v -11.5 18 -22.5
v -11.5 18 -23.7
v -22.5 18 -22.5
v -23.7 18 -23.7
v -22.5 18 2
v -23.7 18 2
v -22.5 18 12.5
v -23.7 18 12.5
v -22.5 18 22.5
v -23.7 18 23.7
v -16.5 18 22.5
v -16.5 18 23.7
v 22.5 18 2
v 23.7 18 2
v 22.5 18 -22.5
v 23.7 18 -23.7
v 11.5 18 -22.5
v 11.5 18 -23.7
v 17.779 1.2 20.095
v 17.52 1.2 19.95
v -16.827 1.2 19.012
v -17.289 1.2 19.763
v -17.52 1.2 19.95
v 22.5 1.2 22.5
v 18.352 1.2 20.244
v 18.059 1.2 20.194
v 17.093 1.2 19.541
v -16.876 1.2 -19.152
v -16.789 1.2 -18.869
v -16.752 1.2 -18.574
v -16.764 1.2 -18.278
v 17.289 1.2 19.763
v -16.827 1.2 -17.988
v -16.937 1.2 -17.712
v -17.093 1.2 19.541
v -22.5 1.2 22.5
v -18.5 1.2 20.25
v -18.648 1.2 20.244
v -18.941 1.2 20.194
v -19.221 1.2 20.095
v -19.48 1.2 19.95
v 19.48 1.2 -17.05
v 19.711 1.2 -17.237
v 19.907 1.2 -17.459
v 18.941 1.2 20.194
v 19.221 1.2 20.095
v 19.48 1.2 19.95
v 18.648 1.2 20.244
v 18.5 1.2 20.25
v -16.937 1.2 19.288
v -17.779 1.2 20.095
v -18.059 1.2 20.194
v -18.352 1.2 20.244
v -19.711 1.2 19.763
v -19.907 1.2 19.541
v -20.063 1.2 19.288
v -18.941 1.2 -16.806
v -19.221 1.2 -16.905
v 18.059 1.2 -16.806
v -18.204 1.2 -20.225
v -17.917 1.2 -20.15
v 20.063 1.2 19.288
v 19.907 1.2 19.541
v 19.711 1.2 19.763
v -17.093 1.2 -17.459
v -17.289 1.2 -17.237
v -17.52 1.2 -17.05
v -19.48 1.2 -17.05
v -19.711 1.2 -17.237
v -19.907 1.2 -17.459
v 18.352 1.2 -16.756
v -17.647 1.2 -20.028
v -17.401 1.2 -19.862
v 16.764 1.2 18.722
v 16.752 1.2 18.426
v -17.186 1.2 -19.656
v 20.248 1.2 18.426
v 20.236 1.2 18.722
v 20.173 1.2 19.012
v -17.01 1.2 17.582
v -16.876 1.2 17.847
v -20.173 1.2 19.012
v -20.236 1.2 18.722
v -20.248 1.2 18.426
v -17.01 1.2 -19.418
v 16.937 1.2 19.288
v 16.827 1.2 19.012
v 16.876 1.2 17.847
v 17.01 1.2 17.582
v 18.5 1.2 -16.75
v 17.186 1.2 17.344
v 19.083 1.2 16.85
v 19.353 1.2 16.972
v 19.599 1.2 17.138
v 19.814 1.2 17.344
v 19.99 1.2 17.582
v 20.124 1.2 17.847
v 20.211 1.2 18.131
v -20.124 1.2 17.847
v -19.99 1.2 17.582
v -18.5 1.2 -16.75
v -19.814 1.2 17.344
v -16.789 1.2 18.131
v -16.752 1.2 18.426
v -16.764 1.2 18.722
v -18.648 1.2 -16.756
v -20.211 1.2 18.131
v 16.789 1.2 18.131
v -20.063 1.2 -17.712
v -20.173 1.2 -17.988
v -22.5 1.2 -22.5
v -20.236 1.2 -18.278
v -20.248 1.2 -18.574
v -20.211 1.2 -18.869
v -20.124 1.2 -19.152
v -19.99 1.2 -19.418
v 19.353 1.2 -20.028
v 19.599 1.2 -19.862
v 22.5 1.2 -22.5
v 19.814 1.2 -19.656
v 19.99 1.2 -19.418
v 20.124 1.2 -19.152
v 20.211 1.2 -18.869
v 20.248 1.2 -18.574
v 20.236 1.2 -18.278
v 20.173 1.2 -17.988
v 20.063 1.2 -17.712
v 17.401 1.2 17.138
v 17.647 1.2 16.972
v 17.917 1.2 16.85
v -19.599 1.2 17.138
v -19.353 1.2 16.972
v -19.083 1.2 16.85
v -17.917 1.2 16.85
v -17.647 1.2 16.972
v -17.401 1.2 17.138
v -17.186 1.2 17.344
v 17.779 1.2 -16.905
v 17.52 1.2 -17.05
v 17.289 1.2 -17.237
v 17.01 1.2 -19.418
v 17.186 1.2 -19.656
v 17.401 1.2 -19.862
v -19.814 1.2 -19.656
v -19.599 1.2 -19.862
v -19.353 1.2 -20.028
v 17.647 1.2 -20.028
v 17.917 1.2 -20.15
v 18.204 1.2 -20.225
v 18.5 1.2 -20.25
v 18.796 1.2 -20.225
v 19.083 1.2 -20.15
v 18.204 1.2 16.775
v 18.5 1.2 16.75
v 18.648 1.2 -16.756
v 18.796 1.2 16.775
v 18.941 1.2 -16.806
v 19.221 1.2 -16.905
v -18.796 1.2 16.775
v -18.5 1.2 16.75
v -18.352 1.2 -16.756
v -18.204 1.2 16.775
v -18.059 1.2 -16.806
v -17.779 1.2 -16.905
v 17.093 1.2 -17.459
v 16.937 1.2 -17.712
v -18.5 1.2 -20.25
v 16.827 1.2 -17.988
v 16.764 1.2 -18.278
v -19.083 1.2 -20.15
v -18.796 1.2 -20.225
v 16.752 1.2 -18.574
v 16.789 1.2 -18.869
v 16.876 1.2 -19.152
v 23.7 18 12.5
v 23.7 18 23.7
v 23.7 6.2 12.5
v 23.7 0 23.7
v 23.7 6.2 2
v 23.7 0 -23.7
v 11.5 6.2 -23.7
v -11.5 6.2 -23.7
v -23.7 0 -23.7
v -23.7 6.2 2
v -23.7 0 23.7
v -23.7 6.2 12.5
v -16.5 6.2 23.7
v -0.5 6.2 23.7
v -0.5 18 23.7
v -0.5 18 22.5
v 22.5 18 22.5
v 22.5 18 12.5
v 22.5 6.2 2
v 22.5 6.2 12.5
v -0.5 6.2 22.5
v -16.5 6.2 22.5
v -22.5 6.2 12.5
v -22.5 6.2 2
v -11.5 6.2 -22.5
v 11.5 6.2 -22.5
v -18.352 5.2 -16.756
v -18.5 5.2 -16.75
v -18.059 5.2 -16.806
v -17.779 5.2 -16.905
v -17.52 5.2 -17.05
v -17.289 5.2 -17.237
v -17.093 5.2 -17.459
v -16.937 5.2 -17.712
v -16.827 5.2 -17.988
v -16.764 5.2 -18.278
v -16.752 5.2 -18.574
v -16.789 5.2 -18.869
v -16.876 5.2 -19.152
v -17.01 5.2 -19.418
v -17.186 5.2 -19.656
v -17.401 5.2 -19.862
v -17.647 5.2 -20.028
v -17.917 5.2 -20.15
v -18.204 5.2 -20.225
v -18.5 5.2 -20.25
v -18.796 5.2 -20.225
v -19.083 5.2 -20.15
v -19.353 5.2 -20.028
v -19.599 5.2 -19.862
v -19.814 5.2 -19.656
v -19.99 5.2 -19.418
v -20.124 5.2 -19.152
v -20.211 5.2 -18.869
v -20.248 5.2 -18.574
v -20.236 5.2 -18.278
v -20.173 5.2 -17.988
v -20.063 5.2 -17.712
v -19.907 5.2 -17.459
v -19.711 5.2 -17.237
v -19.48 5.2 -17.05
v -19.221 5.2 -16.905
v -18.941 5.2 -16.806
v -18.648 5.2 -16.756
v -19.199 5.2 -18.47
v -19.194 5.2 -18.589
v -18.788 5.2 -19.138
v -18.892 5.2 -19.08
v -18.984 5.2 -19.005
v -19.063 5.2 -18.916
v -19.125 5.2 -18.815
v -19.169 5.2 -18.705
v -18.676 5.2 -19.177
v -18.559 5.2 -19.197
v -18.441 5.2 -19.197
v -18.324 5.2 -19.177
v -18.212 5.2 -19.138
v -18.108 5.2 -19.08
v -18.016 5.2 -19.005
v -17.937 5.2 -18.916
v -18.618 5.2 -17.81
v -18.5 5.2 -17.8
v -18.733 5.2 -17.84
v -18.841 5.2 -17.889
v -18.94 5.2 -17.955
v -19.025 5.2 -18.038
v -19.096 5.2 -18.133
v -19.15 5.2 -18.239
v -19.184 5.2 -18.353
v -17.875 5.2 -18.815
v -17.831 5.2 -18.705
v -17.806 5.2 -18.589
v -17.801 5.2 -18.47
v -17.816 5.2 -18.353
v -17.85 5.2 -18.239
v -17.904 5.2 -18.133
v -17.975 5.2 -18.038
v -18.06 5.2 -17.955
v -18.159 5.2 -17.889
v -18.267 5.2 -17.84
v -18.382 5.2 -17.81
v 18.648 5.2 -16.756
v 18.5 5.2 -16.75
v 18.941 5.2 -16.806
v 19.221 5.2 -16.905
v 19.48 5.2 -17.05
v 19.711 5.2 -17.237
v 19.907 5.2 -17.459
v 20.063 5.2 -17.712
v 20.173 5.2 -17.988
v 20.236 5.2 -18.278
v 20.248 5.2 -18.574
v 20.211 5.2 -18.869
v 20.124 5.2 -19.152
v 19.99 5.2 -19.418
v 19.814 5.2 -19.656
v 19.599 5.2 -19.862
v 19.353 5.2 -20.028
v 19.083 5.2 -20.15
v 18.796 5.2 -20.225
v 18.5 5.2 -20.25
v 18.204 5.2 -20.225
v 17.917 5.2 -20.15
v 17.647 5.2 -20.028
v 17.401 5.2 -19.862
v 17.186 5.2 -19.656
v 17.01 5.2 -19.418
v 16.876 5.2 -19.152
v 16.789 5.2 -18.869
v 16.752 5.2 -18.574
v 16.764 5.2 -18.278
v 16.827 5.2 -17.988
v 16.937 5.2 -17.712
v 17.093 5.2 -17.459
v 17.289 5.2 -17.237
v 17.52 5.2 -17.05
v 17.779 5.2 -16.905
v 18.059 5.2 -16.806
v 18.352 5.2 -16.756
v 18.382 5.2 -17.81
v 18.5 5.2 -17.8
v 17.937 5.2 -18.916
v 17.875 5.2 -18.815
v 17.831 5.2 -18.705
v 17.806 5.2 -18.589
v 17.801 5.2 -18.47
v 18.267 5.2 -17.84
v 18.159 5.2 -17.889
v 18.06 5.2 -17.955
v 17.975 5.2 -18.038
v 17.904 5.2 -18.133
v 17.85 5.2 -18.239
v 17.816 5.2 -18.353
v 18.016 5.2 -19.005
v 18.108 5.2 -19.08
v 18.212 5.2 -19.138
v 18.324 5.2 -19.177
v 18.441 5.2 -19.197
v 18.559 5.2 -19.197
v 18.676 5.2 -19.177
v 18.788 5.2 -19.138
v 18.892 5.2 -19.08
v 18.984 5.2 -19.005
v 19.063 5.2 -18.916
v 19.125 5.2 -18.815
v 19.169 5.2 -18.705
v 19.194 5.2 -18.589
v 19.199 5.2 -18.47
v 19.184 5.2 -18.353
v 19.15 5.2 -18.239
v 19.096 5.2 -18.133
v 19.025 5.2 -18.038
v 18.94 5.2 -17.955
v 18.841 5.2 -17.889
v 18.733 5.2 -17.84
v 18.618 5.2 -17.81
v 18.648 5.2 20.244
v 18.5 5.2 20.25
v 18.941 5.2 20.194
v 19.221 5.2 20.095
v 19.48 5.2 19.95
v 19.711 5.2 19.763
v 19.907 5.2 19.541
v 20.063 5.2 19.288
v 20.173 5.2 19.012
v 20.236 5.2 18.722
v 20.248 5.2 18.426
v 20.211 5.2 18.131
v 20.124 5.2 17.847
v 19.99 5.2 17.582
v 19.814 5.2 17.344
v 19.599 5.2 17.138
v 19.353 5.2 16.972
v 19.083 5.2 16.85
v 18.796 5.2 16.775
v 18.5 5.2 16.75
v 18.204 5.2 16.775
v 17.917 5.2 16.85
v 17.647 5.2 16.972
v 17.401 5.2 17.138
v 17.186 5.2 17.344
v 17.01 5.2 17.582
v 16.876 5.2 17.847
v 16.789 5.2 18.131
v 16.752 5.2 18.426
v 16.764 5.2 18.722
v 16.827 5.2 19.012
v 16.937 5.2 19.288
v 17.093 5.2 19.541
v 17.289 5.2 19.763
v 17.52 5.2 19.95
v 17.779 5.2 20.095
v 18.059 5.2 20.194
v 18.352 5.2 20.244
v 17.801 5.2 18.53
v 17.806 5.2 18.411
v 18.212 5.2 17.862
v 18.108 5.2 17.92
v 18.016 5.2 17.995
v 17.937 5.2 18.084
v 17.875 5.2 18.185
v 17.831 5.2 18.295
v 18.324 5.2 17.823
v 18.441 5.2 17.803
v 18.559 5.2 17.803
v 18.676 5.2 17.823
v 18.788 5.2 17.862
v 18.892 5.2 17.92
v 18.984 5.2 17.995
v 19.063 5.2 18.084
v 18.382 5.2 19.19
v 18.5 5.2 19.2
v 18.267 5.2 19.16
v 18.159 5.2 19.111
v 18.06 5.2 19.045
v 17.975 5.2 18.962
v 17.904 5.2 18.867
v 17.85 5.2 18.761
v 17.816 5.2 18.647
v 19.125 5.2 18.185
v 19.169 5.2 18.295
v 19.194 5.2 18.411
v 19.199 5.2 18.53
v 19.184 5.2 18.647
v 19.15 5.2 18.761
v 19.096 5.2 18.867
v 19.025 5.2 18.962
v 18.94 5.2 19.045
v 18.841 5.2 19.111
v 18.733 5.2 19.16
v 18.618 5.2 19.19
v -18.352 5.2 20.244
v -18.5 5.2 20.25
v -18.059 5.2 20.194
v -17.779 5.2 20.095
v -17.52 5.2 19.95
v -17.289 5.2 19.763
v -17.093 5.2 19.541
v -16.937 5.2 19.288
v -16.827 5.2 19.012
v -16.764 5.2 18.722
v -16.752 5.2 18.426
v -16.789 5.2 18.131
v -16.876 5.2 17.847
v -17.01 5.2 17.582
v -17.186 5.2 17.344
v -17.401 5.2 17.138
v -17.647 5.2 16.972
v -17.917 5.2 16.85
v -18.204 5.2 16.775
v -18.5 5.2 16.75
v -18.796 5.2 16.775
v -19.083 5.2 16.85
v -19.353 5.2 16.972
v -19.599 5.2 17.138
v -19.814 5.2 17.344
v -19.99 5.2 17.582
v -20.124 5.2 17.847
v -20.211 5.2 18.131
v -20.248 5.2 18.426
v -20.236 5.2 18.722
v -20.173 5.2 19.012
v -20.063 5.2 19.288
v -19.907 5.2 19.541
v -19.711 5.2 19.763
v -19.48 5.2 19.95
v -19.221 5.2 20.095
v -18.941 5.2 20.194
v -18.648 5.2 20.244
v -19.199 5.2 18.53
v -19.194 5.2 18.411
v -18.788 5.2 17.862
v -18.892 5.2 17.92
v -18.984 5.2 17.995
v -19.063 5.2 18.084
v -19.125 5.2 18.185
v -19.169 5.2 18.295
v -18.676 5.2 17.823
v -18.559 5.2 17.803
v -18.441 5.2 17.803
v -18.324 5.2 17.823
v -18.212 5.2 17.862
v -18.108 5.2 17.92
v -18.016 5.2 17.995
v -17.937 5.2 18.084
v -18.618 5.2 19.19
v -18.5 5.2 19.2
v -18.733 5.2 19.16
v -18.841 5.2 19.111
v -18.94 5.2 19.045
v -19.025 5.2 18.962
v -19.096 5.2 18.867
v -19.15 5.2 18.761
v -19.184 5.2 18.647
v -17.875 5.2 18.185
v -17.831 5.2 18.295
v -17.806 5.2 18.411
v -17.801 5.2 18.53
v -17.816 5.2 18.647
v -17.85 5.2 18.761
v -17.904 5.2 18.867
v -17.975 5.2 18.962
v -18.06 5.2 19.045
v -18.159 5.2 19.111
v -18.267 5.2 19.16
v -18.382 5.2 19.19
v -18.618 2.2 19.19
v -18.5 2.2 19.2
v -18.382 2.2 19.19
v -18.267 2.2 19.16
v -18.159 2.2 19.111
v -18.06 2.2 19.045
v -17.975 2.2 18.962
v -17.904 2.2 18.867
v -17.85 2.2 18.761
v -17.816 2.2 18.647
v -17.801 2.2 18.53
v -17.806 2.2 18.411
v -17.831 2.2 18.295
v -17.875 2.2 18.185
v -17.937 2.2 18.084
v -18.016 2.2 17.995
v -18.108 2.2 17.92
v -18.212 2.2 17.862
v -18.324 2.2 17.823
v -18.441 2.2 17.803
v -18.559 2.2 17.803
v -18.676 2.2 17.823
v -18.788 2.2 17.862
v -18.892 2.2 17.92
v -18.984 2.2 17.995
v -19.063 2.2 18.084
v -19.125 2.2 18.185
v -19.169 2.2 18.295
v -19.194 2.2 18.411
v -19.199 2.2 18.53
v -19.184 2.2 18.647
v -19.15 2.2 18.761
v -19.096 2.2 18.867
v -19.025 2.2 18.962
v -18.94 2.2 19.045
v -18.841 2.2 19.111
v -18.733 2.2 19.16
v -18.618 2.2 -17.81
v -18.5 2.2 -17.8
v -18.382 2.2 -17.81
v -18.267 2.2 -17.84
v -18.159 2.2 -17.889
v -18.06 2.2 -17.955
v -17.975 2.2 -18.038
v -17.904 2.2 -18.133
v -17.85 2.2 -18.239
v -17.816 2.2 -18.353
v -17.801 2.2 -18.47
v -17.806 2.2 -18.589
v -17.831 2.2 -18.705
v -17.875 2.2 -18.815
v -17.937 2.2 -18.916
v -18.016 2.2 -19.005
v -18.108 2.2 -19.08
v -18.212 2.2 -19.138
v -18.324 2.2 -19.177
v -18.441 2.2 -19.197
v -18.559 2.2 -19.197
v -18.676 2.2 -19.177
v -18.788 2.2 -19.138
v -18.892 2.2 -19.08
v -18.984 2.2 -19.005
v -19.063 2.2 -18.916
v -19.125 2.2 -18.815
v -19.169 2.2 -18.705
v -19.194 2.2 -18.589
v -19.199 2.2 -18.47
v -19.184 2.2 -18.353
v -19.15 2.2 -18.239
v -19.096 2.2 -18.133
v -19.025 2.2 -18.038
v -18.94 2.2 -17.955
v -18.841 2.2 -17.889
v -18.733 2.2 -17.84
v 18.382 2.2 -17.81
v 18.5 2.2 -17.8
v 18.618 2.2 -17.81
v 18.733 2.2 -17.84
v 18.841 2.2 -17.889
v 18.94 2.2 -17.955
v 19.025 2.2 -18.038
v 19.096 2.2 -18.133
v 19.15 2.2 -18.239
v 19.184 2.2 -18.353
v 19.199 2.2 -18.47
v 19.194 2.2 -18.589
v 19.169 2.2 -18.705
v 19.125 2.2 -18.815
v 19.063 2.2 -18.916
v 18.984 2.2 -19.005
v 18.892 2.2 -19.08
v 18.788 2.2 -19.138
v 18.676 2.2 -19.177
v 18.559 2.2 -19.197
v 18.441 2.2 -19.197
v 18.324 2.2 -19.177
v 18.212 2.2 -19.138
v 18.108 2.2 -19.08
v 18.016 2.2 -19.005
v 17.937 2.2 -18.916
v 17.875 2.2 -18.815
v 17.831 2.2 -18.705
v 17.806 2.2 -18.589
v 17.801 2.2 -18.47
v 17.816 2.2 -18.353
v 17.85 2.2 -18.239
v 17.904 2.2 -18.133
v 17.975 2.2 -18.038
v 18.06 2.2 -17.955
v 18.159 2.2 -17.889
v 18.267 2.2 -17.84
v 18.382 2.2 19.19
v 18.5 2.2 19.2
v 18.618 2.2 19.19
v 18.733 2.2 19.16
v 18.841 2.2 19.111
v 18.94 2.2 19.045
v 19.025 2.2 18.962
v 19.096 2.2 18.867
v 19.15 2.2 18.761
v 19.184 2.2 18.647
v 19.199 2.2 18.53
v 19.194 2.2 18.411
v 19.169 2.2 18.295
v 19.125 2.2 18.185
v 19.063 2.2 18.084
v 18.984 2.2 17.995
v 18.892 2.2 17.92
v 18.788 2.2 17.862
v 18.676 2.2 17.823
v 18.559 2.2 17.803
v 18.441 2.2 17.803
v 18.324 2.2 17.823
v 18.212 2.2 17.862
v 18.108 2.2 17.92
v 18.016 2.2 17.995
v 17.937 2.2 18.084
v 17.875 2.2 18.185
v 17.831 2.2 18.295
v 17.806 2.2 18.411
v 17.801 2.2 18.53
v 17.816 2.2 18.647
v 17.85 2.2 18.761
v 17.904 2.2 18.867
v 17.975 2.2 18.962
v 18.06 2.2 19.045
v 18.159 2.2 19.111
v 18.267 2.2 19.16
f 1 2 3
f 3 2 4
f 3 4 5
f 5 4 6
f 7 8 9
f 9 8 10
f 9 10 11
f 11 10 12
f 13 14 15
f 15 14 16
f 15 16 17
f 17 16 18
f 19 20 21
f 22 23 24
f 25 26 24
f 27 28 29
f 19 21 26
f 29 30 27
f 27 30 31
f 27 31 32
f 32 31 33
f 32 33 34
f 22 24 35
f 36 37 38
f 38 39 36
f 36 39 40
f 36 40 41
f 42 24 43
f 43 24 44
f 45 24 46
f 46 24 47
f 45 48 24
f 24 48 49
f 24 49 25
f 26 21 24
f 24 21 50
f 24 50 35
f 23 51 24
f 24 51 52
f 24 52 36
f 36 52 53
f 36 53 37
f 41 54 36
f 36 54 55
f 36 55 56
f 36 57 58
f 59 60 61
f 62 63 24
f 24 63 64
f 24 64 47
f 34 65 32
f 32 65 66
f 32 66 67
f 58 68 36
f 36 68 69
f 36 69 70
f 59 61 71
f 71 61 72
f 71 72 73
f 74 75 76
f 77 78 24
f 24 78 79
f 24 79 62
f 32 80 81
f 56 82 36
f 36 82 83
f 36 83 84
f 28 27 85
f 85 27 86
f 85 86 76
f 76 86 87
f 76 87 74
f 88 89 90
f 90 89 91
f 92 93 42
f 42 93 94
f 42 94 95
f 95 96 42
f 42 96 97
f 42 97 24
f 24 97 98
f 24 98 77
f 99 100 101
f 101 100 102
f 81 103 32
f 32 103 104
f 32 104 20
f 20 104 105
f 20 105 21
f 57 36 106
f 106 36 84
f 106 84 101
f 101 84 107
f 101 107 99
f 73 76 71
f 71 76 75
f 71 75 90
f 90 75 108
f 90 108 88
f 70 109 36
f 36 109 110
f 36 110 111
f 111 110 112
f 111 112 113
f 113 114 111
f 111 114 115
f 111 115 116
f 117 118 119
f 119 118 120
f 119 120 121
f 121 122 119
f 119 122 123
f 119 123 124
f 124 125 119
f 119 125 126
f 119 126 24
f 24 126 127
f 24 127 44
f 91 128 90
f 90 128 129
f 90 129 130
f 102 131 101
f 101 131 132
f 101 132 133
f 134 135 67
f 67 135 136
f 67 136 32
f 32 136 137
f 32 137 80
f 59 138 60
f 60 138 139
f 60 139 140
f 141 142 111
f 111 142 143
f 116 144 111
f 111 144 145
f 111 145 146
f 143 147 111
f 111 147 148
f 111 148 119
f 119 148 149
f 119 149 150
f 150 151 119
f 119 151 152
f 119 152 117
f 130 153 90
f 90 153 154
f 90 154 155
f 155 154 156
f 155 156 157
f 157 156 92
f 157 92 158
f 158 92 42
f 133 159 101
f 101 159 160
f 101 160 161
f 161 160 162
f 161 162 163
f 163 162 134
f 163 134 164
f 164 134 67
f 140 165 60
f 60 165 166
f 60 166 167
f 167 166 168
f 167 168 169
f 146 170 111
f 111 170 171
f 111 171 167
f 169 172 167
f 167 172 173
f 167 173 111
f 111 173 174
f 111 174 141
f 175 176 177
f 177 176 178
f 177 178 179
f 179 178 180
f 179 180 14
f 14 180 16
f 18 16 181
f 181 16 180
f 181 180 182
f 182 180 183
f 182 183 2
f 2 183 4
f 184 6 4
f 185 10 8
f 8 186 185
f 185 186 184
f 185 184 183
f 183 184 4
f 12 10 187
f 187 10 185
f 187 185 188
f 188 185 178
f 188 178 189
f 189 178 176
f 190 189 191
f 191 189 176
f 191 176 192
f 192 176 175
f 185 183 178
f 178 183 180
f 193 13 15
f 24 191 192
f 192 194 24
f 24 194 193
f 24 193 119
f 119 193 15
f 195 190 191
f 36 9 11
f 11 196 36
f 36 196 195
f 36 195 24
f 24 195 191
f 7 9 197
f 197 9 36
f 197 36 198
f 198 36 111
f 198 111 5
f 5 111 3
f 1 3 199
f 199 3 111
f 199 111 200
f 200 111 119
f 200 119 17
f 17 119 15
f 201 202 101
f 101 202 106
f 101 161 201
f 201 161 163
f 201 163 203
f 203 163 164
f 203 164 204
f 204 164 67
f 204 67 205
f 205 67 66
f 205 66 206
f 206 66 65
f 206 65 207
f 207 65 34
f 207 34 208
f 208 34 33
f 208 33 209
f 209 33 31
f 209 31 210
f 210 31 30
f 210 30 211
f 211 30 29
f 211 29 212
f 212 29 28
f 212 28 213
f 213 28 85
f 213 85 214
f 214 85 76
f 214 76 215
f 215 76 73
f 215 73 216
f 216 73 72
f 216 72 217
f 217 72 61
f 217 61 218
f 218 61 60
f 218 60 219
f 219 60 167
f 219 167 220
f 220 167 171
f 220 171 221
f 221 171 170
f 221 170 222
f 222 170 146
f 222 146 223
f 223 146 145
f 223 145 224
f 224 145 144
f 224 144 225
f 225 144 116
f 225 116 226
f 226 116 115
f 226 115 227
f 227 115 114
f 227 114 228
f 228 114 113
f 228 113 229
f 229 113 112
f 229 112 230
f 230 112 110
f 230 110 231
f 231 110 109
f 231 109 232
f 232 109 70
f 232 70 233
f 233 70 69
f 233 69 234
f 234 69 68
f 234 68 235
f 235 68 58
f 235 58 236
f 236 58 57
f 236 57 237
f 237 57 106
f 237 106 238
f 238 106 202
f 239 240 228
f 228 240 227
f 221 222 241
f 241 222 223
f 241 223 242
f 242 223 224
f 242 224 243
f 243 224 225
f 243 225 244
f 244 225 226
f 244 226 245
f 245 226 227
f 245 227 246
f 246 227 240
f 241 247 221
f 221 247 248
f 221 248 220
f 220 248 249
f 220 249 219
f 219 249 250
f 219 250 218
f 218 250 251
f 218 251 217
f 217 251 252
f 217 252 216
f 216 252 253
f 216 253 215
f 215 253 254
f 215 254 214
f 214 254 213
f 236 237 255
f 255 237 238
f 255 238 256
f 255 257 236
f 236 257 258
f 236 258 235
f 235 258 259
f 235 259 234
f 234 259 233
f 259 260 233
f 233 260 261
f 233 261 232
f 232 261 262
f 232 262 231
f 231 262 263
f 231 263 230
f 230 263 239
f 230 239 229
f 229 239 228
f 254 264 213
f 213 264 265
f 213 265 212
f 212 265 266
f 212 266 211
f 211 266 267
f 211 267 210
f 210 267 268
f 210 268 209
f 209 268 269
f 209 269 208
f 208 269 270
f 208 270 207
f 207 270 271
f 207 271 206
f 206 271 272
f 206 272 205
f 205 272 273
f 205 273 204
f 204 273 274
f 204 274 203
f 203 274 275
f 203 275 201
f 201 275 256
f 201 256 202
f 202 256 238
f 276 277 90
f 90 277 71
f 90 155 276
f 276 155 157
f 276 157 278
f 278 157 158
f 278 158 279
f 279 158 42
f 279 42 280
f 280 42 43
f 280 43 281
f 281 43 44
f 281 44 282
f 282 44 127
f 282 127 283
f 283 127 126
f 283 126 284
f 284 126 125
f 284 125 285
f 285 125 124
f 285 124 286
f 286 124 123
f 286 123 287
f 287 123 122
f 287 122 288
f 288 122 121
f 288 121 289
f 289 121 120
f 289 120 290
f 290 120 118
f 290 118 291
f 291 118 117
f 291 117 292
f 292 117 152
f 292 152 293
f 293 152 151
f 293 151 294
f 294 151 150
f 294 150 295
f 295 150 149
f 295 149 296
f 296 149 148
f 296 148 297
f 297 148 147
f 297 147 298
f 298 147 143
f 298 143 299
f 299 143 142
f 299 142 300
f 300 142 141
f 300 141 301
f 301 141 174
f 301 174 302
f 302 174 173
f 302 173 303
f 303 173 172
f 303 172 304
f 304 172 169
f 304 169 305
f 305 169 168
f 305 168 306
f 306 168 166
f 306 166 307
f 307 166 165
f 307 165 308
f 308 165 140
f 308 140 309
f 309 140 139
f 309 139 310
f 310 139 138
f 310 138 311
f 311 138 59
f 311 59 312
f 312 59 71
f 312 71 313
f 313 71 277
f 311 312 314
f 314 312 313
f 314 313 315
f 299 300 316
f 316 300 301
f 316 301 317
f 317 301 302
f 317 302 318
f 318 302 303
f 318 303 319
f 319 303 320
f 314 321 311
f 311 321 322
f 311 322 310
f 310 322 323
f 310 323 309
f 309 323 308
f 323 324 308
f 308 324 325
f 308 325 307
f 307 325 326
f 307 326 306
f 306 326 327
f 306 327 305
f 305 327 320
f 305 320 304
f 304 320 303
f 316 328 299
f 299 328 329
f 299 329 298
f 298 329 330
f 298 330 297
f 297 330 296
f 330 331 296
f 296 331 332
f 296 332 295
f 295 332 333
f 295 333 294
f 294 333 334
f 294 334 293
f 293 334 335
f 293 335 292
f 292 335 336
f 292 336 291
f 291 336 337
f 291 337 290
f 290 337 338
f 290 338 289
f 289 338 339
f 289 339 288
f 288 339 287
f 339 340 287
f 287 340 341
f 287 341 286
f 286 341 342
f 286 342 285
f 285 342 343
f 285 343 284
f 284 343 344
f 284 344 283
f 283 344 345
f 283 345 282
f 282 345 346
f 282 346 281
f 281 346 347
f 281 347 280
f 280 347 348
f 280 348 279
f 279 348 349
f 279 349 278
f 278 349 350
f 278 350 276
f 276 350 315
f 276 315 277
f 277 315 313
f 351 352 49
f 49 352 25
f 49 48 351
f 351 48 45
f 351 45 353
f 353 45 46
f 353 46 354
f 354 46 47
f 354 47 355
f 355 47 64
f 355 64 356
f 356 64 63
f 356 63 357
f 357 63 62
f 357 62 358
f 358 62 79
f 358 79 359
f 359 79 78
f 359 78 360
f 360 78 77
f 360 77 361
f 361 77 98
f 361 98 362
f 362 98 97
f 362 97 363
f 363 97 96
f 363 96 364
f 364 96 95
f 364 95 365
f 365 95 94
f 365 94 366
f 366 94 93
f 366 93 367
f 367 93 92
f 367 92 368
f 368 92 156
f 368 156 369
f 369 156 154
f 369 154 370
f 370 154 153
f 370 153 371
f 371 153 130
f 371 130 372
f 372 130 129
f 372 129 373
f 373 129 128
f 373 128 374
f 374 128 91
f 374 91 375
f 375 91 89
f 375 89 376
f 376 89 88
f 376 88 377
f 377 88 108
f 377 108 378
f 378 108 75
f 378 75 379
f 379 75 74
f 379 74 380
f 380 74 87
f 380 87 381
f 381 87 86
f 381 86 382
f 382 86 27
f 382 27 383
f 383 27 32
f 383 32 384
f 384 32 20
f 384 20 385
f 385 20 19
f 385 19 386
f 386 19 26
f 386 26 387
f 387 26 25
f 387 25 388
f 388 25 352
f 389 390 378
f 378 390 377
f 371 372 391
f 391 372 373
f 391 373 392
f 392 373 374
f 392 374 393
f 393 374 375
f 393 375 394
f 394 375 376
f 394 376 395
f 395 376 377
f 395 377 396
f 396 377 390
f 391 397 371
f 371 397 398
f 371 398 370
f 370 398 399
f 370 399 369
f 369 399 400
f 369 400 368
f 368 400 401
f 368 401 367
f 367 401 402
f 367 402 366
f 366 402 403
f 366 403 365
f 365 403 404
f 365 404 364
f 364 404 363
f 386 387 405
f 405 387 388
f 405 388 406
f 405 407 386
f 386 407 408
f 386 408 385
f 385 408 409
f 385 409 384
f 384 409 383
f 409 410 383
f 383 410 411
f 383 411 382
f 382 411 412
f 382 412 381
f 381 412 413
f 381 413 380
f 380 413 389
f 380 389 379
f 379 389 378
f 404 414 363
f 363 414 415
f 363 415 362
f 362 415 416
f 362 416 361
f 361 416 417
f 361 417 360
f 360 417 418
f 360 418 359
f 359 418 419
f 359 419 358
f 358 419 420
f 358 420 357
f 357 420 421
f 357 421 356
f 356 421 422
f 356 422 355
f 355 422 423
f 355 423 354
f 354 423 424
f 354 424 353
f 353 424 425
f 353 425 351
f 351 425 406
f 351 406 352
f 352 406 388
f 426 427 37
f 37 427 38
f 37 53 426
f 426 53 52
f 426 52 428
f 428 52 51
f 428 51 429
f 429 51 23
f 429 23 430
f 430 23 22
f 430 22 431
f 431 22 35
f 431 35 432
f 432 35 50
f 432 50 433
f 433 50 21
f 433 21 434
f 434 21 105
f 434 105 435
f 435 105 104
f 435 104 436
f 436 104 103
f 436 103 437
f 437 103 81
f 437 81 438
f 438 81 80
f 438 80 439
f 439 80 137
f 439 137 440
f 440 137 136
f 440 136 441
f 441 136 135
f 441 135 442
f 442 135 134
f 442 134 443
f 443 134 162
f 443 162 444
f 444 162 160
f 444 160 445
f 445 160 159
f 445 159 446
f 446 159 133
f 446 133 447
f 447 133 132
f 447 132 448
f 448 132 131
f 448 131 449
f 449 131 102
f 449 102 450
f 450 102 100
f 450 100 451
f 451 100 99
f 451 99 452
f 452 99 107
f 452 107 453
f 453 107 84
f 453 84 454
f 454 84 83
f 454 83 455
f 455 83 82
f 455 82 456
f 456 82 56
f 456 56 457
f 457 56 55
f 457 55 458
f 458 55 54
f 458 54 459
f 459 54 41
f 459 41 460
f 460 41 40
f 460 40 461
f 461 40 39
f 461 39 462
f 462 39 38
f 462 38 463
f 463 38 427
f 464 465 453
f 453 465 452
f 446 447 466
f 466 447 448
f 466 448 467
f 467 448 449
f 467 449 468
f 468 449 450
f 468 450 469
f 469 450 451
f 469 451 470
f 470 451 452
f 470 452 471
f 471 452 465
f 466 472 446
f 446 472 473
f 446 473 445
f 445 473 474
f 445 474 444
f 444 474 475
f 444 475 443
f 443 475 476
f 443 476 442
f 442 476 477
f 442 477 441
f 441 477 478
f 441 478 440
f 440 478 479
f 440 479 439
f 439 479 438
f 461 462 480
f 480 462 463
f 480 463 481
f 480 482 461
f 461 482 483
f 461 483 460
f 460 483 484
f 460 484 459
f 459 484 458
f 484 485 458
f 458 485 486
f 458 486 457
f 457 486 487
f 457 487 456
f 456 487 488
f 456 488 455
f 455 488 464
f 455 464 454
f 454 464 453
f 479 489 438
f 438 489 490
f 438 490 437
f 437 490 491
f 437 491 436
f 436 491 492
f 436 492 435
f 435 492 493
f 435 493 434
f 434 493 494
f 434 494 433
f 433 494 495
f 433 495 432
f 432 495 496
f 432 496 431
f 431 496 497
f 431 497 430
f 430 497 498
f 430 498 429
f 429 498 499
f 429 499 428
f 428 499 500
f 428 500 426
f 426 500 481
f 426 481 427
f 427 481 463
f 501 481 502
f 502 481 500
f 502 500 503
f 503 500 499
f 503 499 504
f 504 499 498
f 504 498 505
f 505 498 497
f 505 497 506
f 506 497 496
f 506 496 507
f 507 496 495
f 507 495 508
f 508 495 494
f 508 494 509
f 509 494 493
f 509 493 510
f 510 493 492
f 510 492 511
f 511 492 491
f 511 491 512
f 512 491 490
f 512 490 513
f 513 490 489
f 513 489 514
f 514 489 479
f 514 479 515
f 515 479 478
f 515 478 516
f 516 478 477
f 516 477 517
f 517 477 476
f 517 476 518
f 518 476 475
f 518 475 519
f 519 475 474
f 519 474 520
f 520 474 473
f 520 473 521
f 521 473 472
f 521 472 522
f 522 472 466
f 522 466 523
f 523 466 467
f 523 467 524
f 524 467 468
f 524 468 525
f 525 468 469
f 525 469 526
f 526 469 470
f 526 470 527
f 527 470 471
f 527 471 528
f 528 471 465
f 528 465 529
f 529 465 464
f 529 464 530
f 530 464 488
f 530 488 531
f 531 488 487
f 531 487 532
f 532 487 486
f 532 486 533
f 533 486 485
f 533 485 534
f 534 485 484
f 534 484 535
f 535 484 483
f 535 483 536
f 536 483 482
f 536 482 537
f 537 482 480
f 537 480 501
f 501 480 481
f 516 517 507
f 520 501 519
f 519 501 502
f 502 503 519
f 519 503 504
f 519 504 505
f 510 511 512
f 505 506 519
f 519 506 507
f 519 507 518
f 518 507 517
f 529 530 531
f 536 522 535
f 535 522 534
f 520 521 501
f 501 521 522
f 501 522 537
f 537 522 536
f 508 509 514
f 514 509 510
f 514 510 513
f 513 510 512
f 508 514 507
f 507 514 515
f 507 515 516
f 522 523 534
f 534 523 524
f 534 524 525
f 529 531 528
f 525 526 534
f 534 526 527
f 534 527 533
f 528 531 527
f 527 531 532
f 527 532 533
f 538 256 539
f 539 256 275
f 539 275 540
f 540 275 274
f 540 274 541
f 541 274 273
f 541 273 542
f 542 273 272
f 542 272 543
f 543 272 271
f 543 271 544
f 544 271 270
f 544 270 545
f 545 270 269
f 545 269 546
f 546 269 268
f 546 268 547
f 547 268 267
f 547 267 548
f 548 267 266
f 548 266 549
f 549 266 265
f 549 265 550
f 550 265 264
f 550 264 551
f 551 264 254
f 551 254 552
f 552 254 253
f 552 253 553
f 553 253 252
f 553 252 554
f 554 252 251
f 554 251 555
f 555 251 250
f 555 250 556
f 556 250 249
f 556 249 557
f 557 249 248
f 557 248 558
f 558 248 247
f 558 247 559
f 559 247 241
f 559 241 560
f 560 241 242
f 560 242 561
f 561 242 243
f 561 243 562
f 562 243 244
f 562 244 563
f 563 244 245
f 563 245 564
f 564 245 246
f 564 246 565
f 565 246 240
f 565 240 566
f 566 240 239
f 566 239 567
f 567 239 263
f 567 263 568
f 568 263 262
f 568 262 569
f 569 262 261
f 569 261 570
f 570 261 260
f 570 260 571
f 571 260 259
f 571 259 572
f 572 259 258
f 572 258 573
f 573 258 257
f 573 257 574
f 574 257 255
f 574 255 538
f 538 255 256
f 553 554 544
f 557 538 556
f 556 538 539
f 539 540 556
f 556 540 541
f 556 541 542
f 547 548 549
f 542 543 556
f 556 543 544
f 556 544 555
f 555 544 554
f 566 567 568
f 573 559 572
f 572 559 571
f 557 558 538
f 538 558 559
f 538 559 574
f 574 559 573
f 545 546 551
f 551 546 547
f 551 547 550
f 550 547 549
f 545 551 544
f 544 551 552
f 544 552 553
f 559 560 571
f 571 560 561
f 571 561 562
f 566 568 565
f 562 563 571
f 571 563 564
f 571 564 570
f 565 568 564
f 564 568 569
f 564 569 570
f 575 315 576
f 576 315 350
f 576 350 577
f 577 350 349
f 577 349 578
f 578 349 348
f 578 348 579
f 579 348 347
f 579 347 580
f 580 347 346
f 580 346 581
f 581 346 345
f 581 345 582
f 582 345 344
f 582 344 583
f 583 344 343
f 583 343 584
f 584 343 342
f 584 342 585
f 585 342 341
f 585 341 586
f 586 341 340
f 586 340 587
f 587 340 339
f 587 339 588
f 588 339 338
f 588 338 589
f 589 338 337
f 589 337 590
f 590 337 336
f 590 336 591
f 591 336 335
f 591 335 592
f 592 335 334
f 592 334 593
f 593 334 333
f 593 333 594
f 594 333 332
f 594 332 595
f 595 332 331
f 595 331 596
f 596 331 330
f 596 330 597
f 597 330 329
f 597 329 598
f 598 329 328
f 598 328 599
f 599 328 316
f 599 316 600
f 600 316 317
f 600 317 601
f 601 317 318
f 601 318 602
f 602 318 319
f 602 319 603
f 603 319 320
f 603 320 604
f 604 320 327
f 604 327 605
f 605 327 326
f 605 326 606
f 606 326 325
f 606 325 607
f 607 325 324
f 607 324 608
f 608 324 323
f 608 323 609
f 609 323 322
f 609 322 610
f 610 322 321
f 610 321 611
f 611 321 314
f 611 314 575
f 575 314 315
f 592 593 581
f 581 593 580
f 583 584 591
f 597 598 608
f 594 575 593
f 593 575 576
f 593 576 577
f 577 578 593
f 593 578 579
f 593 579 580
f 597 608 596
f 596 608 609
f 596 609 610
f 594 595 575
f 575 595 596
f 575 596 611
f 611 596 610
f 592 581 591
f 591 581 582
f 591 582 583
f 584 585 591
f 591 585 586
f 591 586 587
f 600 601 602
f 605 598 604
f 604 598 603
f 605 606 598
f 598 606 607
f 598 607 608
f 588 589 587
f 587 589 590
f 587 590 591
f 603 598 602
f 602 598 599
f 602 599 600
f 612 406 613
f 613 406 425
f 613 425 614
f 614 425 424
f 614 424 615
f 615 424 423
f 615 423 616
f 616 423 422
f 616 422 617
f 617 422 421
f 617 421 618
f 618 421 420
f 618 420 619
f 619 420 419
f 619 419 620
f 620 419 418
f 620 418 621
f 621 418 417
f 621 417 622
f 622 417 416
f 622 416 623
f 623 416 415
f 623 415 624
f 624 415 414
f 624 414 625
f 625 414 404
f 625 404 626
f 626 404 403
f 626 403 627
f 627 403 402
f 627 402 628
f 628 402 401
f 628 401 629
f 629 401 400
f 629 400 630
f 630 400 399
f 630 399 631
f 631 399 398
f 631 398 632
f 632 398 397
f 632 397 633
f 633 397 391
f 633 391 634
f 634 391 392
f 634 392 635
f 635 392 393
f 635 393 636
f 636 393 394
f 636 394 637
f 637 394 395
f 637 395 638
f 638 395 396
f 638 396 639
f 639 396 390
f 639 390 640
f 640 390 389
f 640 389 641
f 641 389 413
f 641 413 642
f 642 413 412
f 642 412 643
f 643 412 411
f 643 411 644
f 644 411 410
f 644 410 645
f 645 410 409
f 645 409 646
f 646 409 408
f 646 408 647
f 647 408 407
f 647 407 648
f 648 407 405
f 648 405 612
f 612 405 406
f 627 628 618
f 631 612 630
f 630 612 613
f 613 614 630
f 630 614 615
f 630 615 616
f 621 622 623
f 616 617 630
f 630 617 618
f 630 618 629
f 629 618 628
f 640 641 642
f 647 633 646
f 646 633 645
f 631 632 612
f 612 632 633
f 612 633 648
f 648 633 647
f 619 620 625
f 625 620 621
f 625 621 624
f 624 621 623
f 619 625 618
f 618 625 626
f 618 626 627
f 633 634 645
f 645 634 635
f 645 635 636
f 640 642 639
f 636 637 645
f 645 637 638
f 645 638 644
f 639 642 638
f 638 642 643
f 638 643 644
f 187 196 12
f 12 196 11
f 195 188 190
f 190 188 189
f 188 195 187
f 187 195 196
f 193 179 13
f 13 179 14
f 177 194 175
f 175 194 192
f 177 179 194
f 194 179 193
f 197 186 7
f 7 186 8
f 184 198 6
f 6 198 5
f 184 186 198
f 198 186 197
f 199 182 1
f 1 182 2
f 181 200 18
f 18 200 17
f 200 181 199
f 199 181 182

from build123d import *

# Parameters (mm, degrees)
SKETCH1_W           = 47.4
SKETCH1_H           = 47.4
BOSS_EXTRUDE1_DEPTH = 18
SKETCH2_W           = 45
SKETCH2_H           = 45
CUT_EXTRUDE1_DEPTH  = 16.8
SKETCH3_R           = 1.75
BOSS_EXTRUDE2_DEPTH = 4
SKETCH4_R           = 0.7
CUT_EXTRUDE2_DEPTH  = 3
SKETCH5_W           = 16
SKETCH5_H           = 1.2
SKETCH5_W_2         = 1.2
SKETCH5_H_2         = 10.5
SKETCH5_W_3         = 23
CUT_EXTRUDE3_DEPTH  = 11.8


with BuildPart() as part:
    # Sketch1 → Boss-Extrude1 (new body)
    with BuildSketch(Plane(origin=(0, 0, 0), x_dir=(1, 0, 0), z_dir=(0, 1, 0))):
        Rectangle(SKETCH1_W, SKETCH1_H)
    extrude(amount=BOSS_EXTRUDE1_DEPTH)

    # Sketch2 → Cut-Extrude1 (cut)
    with BuildSketch(Plane(origin=(0, 18, 0), x_dir=(1, 0, 0), z_dir=(0, 1, 0))):
        Rectangle(SKETCH2_W, SKETCH2_H)
    extrude(amount=-CUT_EXTRUDE1_DEPTH, mode=Mode.SUBTRACT)

    # Sketch3 → Boss-Extrude2 (add)
    with BuildSketch(Plane(origin=(0, 1.2, 0), x_dir=(1, 0, 0), z_dir=(0, 1, 0))):
        with Locations(Location((-18.5, 18.5, 0), (0, 0, 270))):
            Circle(SKETCH3_R)
        with Locations(Location((18.5, 18.5, 0), (0, 0, 270))):
            Circle(SKETCH3_R)
        with Locations(Location((18.5, -18.5, 0), (0, 0, 270))):
            Circle(SKETCH3_R)
        with Locations(Location((-18.5, -18.5, 0), (0, 0, 270))):
            Circle(SKETCH3_R)
    extrude(amount=BOSS_EXTRUDE2_DEPTH)

    # Sketch4 → Cut-Extrude2 (cut)
    with BuildSketch(Plane(origin=(0, 5.2, 0), x_dir=(1, 0, 0), z_dir=(0, 1, 0))):
        with Locations(Location((-18.5, -18.5, 0), (0, 0, 270))):
            Circle(SKETCH4_R)
        with Locations(Location((-18.5, 18.5, 0), (0, 0, 270))):
            Circle(SKETCH4_R)
        with Locations(Location((18.5, 18.5, 0), (0, 0, 270))):
            Circle(SKETCH4_R)
        with Locations(Location((18.5, -18.5, 0), (0, 0, 270))):
            Circle(SKETCH4_R)
    extrude(amount=-CUT_EXTRUDE2_DEPTH, mode=Mode.SUBTRACT)

    # Sketch5 → Cut-Extrude3 (cut)
    with BuildSketch(Plane(origin=(0, 18, 0), x_dir=(1, 0, 0), z_dir=(0, 1, 0))):
        with Locations((-8.5, -23.1)):
            Rectangle(SKETCH5_W, SKETCH5_H)
        with Locations((23.1, -7.25)):
            Rectangle(SKETCH5_W_2, SKETCH5_H_2)
        with Locations((-23.1, -7.25)):
            Rectangle(SKETCH5_W_2, SKETCH5_H_2)
        with Locations((0, 23.1)):
            Rectangle(SKETCH5_W_3, SKETCH5_H)
    extrude(amount=-CUT_EXTRUDE3_DEPTH, mode=Mode.SUBTRACT)


solid = part.part
